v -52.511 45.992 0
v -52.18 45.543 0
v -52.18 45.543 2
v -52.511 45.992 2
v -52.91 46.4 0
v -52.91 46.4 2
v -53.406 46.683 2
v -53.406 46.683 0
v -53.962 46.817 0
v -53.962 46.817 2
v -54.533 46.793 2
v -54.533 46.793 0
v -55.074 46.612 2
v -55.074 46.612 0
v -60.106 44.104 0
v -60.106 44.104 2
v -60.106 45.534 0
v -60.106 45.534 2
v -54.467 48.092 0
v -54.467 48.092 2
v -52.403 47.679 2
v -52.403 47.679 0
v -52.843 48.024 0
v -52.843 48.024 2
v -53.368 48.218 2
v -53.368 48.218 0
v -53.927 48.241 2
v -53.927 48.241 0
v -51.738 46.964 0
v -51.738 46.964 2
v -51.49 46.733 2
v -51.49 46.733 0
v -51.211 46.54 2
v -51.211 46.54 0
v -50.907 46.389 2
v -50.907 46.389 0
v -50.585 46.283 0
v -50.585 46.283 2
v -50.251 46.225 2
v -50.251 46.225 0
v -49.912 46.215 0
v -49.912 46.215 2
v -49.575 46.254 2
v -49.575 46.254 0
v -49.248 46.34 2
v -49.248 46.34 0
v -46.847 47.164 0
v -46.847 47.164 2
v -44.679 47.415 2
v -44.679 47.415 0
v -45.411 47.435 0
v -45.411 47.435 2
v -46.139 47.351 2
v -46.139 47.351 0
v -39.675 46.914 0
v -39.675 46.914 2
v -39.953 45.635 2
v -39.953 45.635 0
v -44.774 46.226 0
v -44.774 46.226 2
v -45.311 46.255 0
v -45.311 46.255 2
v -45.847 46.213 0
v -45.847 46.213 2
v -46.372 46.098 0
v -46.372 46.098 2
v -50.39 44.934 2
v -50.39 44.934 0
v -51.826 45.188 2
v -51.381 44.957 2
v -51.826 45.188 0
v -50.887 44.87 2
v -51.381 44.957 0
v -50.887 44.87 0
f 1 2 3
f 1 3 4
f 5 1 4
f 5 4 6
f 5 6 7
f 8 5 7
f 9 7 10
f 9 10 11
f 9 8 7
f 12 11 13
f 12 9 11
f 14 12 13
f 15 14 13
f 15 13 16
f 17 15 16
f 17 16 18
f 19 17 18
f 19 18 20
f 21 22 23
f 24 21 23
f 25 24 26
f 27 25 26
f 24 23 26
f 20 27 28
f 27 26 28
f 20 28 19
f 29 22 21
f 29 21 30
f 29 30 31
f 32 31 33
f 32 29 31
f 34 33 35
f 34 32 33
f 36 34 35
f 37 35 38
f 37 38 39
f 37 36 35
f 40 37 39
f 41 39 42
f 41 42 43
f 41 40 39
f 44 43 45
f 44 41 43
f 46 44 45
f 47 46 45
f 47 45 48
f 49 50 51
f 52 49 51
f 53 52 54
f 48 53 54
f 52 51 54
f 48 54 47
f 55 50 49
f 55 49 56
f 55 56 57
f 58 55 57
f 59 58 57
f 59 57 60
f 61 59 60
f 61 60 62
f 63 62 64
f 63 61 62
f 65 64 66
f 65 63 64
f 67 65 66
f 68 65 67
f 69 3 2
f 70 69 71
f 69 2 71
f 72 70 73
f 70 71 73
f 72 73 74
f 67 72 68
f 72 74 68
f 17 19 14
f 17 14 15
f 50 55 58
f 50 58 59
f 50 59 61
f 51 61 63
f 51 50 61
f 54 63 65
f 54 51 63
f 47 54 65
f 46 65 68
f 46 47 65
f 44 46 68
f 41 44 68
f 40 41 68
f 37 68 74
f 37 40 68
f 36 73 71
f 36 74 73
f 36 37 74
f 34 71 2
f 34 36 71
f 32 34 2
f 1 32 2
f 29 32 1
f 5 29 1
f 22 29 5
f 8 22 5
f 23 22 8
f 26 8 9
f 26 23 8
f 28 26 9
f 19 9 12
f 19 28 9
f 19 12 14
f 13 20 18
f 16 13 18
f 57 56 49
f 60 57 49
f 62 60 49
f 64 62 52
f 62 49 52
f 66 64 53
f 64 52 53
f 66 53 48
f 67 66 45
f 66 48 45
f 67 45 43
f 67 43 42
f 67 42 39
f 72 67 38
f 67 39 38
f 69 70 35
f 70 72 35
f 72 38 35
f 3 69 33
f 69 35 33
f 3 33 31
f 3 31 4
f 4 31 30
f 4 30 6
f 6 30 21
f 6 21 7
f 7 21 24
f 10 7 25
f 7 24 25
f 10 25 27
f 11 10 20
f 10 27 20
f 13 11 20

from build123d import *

# Parameters (mm, degrees)
PAD_DEPTH = 2


with BuildPart() as part:
    # Sketch → Pad (new body)
    with BuildSketch(Plane.XY):
        with BuildLine():
            Line((-60.105615, 45.533643), (-54.466598, 48.091796))
            ThreePointArc((-52.403313, 47.678624), (-53.368379, 48.217678), (-54.466598, 48.091796))
            Line((-52.403313, 47.678624), (-51.737988, 46.96393))
            ThreePointArc((-51.737988, 46.96393), (-50.585163, 46.283393), (-49.247664, 46.340273))
            Line((-49.247664, 46.340273), (-46.846974, 47.163608))
            ThreePointArc((-44.679417, 47.414663), (-45.776747, 47.406135), (-46.846974, 47.163608))
            Line((-44.679417, 47.414663), (-39.67485, 46.913708))
            Line((-39.67485, 46.913708), (-39.952934, 45.634525))
            Line((-39.952934, 45.634525), (-44.774068, 46.226029))
            ThreePointArc((-44.774068, 46.226029), (-45.579656, 46.243017), (-46.372273, 46.098043))
            Line((-46.372273, 46.098043), (-50.39025, 44.934378))
            ThreePointArc((-52.180316, 45.54252), (-51.380911, 44.956967), (-50.39025, 44.934378))
            Line((-52.180316, 45.54252), (-52.510514, 45.991705))
            ThreePointArc((-52.510514, 45.991705), (-53.67937, 46.769354), (-55.074387, 46.611594))
            Line((-55.074387, 46.611594), (-60.105615, 44.103531))
            Line((-60.105615, 44.103531), (-60.105615, 45.533643))
        make_face()
    extrude(amount=PAD_DEPTH)


solid = part.part
